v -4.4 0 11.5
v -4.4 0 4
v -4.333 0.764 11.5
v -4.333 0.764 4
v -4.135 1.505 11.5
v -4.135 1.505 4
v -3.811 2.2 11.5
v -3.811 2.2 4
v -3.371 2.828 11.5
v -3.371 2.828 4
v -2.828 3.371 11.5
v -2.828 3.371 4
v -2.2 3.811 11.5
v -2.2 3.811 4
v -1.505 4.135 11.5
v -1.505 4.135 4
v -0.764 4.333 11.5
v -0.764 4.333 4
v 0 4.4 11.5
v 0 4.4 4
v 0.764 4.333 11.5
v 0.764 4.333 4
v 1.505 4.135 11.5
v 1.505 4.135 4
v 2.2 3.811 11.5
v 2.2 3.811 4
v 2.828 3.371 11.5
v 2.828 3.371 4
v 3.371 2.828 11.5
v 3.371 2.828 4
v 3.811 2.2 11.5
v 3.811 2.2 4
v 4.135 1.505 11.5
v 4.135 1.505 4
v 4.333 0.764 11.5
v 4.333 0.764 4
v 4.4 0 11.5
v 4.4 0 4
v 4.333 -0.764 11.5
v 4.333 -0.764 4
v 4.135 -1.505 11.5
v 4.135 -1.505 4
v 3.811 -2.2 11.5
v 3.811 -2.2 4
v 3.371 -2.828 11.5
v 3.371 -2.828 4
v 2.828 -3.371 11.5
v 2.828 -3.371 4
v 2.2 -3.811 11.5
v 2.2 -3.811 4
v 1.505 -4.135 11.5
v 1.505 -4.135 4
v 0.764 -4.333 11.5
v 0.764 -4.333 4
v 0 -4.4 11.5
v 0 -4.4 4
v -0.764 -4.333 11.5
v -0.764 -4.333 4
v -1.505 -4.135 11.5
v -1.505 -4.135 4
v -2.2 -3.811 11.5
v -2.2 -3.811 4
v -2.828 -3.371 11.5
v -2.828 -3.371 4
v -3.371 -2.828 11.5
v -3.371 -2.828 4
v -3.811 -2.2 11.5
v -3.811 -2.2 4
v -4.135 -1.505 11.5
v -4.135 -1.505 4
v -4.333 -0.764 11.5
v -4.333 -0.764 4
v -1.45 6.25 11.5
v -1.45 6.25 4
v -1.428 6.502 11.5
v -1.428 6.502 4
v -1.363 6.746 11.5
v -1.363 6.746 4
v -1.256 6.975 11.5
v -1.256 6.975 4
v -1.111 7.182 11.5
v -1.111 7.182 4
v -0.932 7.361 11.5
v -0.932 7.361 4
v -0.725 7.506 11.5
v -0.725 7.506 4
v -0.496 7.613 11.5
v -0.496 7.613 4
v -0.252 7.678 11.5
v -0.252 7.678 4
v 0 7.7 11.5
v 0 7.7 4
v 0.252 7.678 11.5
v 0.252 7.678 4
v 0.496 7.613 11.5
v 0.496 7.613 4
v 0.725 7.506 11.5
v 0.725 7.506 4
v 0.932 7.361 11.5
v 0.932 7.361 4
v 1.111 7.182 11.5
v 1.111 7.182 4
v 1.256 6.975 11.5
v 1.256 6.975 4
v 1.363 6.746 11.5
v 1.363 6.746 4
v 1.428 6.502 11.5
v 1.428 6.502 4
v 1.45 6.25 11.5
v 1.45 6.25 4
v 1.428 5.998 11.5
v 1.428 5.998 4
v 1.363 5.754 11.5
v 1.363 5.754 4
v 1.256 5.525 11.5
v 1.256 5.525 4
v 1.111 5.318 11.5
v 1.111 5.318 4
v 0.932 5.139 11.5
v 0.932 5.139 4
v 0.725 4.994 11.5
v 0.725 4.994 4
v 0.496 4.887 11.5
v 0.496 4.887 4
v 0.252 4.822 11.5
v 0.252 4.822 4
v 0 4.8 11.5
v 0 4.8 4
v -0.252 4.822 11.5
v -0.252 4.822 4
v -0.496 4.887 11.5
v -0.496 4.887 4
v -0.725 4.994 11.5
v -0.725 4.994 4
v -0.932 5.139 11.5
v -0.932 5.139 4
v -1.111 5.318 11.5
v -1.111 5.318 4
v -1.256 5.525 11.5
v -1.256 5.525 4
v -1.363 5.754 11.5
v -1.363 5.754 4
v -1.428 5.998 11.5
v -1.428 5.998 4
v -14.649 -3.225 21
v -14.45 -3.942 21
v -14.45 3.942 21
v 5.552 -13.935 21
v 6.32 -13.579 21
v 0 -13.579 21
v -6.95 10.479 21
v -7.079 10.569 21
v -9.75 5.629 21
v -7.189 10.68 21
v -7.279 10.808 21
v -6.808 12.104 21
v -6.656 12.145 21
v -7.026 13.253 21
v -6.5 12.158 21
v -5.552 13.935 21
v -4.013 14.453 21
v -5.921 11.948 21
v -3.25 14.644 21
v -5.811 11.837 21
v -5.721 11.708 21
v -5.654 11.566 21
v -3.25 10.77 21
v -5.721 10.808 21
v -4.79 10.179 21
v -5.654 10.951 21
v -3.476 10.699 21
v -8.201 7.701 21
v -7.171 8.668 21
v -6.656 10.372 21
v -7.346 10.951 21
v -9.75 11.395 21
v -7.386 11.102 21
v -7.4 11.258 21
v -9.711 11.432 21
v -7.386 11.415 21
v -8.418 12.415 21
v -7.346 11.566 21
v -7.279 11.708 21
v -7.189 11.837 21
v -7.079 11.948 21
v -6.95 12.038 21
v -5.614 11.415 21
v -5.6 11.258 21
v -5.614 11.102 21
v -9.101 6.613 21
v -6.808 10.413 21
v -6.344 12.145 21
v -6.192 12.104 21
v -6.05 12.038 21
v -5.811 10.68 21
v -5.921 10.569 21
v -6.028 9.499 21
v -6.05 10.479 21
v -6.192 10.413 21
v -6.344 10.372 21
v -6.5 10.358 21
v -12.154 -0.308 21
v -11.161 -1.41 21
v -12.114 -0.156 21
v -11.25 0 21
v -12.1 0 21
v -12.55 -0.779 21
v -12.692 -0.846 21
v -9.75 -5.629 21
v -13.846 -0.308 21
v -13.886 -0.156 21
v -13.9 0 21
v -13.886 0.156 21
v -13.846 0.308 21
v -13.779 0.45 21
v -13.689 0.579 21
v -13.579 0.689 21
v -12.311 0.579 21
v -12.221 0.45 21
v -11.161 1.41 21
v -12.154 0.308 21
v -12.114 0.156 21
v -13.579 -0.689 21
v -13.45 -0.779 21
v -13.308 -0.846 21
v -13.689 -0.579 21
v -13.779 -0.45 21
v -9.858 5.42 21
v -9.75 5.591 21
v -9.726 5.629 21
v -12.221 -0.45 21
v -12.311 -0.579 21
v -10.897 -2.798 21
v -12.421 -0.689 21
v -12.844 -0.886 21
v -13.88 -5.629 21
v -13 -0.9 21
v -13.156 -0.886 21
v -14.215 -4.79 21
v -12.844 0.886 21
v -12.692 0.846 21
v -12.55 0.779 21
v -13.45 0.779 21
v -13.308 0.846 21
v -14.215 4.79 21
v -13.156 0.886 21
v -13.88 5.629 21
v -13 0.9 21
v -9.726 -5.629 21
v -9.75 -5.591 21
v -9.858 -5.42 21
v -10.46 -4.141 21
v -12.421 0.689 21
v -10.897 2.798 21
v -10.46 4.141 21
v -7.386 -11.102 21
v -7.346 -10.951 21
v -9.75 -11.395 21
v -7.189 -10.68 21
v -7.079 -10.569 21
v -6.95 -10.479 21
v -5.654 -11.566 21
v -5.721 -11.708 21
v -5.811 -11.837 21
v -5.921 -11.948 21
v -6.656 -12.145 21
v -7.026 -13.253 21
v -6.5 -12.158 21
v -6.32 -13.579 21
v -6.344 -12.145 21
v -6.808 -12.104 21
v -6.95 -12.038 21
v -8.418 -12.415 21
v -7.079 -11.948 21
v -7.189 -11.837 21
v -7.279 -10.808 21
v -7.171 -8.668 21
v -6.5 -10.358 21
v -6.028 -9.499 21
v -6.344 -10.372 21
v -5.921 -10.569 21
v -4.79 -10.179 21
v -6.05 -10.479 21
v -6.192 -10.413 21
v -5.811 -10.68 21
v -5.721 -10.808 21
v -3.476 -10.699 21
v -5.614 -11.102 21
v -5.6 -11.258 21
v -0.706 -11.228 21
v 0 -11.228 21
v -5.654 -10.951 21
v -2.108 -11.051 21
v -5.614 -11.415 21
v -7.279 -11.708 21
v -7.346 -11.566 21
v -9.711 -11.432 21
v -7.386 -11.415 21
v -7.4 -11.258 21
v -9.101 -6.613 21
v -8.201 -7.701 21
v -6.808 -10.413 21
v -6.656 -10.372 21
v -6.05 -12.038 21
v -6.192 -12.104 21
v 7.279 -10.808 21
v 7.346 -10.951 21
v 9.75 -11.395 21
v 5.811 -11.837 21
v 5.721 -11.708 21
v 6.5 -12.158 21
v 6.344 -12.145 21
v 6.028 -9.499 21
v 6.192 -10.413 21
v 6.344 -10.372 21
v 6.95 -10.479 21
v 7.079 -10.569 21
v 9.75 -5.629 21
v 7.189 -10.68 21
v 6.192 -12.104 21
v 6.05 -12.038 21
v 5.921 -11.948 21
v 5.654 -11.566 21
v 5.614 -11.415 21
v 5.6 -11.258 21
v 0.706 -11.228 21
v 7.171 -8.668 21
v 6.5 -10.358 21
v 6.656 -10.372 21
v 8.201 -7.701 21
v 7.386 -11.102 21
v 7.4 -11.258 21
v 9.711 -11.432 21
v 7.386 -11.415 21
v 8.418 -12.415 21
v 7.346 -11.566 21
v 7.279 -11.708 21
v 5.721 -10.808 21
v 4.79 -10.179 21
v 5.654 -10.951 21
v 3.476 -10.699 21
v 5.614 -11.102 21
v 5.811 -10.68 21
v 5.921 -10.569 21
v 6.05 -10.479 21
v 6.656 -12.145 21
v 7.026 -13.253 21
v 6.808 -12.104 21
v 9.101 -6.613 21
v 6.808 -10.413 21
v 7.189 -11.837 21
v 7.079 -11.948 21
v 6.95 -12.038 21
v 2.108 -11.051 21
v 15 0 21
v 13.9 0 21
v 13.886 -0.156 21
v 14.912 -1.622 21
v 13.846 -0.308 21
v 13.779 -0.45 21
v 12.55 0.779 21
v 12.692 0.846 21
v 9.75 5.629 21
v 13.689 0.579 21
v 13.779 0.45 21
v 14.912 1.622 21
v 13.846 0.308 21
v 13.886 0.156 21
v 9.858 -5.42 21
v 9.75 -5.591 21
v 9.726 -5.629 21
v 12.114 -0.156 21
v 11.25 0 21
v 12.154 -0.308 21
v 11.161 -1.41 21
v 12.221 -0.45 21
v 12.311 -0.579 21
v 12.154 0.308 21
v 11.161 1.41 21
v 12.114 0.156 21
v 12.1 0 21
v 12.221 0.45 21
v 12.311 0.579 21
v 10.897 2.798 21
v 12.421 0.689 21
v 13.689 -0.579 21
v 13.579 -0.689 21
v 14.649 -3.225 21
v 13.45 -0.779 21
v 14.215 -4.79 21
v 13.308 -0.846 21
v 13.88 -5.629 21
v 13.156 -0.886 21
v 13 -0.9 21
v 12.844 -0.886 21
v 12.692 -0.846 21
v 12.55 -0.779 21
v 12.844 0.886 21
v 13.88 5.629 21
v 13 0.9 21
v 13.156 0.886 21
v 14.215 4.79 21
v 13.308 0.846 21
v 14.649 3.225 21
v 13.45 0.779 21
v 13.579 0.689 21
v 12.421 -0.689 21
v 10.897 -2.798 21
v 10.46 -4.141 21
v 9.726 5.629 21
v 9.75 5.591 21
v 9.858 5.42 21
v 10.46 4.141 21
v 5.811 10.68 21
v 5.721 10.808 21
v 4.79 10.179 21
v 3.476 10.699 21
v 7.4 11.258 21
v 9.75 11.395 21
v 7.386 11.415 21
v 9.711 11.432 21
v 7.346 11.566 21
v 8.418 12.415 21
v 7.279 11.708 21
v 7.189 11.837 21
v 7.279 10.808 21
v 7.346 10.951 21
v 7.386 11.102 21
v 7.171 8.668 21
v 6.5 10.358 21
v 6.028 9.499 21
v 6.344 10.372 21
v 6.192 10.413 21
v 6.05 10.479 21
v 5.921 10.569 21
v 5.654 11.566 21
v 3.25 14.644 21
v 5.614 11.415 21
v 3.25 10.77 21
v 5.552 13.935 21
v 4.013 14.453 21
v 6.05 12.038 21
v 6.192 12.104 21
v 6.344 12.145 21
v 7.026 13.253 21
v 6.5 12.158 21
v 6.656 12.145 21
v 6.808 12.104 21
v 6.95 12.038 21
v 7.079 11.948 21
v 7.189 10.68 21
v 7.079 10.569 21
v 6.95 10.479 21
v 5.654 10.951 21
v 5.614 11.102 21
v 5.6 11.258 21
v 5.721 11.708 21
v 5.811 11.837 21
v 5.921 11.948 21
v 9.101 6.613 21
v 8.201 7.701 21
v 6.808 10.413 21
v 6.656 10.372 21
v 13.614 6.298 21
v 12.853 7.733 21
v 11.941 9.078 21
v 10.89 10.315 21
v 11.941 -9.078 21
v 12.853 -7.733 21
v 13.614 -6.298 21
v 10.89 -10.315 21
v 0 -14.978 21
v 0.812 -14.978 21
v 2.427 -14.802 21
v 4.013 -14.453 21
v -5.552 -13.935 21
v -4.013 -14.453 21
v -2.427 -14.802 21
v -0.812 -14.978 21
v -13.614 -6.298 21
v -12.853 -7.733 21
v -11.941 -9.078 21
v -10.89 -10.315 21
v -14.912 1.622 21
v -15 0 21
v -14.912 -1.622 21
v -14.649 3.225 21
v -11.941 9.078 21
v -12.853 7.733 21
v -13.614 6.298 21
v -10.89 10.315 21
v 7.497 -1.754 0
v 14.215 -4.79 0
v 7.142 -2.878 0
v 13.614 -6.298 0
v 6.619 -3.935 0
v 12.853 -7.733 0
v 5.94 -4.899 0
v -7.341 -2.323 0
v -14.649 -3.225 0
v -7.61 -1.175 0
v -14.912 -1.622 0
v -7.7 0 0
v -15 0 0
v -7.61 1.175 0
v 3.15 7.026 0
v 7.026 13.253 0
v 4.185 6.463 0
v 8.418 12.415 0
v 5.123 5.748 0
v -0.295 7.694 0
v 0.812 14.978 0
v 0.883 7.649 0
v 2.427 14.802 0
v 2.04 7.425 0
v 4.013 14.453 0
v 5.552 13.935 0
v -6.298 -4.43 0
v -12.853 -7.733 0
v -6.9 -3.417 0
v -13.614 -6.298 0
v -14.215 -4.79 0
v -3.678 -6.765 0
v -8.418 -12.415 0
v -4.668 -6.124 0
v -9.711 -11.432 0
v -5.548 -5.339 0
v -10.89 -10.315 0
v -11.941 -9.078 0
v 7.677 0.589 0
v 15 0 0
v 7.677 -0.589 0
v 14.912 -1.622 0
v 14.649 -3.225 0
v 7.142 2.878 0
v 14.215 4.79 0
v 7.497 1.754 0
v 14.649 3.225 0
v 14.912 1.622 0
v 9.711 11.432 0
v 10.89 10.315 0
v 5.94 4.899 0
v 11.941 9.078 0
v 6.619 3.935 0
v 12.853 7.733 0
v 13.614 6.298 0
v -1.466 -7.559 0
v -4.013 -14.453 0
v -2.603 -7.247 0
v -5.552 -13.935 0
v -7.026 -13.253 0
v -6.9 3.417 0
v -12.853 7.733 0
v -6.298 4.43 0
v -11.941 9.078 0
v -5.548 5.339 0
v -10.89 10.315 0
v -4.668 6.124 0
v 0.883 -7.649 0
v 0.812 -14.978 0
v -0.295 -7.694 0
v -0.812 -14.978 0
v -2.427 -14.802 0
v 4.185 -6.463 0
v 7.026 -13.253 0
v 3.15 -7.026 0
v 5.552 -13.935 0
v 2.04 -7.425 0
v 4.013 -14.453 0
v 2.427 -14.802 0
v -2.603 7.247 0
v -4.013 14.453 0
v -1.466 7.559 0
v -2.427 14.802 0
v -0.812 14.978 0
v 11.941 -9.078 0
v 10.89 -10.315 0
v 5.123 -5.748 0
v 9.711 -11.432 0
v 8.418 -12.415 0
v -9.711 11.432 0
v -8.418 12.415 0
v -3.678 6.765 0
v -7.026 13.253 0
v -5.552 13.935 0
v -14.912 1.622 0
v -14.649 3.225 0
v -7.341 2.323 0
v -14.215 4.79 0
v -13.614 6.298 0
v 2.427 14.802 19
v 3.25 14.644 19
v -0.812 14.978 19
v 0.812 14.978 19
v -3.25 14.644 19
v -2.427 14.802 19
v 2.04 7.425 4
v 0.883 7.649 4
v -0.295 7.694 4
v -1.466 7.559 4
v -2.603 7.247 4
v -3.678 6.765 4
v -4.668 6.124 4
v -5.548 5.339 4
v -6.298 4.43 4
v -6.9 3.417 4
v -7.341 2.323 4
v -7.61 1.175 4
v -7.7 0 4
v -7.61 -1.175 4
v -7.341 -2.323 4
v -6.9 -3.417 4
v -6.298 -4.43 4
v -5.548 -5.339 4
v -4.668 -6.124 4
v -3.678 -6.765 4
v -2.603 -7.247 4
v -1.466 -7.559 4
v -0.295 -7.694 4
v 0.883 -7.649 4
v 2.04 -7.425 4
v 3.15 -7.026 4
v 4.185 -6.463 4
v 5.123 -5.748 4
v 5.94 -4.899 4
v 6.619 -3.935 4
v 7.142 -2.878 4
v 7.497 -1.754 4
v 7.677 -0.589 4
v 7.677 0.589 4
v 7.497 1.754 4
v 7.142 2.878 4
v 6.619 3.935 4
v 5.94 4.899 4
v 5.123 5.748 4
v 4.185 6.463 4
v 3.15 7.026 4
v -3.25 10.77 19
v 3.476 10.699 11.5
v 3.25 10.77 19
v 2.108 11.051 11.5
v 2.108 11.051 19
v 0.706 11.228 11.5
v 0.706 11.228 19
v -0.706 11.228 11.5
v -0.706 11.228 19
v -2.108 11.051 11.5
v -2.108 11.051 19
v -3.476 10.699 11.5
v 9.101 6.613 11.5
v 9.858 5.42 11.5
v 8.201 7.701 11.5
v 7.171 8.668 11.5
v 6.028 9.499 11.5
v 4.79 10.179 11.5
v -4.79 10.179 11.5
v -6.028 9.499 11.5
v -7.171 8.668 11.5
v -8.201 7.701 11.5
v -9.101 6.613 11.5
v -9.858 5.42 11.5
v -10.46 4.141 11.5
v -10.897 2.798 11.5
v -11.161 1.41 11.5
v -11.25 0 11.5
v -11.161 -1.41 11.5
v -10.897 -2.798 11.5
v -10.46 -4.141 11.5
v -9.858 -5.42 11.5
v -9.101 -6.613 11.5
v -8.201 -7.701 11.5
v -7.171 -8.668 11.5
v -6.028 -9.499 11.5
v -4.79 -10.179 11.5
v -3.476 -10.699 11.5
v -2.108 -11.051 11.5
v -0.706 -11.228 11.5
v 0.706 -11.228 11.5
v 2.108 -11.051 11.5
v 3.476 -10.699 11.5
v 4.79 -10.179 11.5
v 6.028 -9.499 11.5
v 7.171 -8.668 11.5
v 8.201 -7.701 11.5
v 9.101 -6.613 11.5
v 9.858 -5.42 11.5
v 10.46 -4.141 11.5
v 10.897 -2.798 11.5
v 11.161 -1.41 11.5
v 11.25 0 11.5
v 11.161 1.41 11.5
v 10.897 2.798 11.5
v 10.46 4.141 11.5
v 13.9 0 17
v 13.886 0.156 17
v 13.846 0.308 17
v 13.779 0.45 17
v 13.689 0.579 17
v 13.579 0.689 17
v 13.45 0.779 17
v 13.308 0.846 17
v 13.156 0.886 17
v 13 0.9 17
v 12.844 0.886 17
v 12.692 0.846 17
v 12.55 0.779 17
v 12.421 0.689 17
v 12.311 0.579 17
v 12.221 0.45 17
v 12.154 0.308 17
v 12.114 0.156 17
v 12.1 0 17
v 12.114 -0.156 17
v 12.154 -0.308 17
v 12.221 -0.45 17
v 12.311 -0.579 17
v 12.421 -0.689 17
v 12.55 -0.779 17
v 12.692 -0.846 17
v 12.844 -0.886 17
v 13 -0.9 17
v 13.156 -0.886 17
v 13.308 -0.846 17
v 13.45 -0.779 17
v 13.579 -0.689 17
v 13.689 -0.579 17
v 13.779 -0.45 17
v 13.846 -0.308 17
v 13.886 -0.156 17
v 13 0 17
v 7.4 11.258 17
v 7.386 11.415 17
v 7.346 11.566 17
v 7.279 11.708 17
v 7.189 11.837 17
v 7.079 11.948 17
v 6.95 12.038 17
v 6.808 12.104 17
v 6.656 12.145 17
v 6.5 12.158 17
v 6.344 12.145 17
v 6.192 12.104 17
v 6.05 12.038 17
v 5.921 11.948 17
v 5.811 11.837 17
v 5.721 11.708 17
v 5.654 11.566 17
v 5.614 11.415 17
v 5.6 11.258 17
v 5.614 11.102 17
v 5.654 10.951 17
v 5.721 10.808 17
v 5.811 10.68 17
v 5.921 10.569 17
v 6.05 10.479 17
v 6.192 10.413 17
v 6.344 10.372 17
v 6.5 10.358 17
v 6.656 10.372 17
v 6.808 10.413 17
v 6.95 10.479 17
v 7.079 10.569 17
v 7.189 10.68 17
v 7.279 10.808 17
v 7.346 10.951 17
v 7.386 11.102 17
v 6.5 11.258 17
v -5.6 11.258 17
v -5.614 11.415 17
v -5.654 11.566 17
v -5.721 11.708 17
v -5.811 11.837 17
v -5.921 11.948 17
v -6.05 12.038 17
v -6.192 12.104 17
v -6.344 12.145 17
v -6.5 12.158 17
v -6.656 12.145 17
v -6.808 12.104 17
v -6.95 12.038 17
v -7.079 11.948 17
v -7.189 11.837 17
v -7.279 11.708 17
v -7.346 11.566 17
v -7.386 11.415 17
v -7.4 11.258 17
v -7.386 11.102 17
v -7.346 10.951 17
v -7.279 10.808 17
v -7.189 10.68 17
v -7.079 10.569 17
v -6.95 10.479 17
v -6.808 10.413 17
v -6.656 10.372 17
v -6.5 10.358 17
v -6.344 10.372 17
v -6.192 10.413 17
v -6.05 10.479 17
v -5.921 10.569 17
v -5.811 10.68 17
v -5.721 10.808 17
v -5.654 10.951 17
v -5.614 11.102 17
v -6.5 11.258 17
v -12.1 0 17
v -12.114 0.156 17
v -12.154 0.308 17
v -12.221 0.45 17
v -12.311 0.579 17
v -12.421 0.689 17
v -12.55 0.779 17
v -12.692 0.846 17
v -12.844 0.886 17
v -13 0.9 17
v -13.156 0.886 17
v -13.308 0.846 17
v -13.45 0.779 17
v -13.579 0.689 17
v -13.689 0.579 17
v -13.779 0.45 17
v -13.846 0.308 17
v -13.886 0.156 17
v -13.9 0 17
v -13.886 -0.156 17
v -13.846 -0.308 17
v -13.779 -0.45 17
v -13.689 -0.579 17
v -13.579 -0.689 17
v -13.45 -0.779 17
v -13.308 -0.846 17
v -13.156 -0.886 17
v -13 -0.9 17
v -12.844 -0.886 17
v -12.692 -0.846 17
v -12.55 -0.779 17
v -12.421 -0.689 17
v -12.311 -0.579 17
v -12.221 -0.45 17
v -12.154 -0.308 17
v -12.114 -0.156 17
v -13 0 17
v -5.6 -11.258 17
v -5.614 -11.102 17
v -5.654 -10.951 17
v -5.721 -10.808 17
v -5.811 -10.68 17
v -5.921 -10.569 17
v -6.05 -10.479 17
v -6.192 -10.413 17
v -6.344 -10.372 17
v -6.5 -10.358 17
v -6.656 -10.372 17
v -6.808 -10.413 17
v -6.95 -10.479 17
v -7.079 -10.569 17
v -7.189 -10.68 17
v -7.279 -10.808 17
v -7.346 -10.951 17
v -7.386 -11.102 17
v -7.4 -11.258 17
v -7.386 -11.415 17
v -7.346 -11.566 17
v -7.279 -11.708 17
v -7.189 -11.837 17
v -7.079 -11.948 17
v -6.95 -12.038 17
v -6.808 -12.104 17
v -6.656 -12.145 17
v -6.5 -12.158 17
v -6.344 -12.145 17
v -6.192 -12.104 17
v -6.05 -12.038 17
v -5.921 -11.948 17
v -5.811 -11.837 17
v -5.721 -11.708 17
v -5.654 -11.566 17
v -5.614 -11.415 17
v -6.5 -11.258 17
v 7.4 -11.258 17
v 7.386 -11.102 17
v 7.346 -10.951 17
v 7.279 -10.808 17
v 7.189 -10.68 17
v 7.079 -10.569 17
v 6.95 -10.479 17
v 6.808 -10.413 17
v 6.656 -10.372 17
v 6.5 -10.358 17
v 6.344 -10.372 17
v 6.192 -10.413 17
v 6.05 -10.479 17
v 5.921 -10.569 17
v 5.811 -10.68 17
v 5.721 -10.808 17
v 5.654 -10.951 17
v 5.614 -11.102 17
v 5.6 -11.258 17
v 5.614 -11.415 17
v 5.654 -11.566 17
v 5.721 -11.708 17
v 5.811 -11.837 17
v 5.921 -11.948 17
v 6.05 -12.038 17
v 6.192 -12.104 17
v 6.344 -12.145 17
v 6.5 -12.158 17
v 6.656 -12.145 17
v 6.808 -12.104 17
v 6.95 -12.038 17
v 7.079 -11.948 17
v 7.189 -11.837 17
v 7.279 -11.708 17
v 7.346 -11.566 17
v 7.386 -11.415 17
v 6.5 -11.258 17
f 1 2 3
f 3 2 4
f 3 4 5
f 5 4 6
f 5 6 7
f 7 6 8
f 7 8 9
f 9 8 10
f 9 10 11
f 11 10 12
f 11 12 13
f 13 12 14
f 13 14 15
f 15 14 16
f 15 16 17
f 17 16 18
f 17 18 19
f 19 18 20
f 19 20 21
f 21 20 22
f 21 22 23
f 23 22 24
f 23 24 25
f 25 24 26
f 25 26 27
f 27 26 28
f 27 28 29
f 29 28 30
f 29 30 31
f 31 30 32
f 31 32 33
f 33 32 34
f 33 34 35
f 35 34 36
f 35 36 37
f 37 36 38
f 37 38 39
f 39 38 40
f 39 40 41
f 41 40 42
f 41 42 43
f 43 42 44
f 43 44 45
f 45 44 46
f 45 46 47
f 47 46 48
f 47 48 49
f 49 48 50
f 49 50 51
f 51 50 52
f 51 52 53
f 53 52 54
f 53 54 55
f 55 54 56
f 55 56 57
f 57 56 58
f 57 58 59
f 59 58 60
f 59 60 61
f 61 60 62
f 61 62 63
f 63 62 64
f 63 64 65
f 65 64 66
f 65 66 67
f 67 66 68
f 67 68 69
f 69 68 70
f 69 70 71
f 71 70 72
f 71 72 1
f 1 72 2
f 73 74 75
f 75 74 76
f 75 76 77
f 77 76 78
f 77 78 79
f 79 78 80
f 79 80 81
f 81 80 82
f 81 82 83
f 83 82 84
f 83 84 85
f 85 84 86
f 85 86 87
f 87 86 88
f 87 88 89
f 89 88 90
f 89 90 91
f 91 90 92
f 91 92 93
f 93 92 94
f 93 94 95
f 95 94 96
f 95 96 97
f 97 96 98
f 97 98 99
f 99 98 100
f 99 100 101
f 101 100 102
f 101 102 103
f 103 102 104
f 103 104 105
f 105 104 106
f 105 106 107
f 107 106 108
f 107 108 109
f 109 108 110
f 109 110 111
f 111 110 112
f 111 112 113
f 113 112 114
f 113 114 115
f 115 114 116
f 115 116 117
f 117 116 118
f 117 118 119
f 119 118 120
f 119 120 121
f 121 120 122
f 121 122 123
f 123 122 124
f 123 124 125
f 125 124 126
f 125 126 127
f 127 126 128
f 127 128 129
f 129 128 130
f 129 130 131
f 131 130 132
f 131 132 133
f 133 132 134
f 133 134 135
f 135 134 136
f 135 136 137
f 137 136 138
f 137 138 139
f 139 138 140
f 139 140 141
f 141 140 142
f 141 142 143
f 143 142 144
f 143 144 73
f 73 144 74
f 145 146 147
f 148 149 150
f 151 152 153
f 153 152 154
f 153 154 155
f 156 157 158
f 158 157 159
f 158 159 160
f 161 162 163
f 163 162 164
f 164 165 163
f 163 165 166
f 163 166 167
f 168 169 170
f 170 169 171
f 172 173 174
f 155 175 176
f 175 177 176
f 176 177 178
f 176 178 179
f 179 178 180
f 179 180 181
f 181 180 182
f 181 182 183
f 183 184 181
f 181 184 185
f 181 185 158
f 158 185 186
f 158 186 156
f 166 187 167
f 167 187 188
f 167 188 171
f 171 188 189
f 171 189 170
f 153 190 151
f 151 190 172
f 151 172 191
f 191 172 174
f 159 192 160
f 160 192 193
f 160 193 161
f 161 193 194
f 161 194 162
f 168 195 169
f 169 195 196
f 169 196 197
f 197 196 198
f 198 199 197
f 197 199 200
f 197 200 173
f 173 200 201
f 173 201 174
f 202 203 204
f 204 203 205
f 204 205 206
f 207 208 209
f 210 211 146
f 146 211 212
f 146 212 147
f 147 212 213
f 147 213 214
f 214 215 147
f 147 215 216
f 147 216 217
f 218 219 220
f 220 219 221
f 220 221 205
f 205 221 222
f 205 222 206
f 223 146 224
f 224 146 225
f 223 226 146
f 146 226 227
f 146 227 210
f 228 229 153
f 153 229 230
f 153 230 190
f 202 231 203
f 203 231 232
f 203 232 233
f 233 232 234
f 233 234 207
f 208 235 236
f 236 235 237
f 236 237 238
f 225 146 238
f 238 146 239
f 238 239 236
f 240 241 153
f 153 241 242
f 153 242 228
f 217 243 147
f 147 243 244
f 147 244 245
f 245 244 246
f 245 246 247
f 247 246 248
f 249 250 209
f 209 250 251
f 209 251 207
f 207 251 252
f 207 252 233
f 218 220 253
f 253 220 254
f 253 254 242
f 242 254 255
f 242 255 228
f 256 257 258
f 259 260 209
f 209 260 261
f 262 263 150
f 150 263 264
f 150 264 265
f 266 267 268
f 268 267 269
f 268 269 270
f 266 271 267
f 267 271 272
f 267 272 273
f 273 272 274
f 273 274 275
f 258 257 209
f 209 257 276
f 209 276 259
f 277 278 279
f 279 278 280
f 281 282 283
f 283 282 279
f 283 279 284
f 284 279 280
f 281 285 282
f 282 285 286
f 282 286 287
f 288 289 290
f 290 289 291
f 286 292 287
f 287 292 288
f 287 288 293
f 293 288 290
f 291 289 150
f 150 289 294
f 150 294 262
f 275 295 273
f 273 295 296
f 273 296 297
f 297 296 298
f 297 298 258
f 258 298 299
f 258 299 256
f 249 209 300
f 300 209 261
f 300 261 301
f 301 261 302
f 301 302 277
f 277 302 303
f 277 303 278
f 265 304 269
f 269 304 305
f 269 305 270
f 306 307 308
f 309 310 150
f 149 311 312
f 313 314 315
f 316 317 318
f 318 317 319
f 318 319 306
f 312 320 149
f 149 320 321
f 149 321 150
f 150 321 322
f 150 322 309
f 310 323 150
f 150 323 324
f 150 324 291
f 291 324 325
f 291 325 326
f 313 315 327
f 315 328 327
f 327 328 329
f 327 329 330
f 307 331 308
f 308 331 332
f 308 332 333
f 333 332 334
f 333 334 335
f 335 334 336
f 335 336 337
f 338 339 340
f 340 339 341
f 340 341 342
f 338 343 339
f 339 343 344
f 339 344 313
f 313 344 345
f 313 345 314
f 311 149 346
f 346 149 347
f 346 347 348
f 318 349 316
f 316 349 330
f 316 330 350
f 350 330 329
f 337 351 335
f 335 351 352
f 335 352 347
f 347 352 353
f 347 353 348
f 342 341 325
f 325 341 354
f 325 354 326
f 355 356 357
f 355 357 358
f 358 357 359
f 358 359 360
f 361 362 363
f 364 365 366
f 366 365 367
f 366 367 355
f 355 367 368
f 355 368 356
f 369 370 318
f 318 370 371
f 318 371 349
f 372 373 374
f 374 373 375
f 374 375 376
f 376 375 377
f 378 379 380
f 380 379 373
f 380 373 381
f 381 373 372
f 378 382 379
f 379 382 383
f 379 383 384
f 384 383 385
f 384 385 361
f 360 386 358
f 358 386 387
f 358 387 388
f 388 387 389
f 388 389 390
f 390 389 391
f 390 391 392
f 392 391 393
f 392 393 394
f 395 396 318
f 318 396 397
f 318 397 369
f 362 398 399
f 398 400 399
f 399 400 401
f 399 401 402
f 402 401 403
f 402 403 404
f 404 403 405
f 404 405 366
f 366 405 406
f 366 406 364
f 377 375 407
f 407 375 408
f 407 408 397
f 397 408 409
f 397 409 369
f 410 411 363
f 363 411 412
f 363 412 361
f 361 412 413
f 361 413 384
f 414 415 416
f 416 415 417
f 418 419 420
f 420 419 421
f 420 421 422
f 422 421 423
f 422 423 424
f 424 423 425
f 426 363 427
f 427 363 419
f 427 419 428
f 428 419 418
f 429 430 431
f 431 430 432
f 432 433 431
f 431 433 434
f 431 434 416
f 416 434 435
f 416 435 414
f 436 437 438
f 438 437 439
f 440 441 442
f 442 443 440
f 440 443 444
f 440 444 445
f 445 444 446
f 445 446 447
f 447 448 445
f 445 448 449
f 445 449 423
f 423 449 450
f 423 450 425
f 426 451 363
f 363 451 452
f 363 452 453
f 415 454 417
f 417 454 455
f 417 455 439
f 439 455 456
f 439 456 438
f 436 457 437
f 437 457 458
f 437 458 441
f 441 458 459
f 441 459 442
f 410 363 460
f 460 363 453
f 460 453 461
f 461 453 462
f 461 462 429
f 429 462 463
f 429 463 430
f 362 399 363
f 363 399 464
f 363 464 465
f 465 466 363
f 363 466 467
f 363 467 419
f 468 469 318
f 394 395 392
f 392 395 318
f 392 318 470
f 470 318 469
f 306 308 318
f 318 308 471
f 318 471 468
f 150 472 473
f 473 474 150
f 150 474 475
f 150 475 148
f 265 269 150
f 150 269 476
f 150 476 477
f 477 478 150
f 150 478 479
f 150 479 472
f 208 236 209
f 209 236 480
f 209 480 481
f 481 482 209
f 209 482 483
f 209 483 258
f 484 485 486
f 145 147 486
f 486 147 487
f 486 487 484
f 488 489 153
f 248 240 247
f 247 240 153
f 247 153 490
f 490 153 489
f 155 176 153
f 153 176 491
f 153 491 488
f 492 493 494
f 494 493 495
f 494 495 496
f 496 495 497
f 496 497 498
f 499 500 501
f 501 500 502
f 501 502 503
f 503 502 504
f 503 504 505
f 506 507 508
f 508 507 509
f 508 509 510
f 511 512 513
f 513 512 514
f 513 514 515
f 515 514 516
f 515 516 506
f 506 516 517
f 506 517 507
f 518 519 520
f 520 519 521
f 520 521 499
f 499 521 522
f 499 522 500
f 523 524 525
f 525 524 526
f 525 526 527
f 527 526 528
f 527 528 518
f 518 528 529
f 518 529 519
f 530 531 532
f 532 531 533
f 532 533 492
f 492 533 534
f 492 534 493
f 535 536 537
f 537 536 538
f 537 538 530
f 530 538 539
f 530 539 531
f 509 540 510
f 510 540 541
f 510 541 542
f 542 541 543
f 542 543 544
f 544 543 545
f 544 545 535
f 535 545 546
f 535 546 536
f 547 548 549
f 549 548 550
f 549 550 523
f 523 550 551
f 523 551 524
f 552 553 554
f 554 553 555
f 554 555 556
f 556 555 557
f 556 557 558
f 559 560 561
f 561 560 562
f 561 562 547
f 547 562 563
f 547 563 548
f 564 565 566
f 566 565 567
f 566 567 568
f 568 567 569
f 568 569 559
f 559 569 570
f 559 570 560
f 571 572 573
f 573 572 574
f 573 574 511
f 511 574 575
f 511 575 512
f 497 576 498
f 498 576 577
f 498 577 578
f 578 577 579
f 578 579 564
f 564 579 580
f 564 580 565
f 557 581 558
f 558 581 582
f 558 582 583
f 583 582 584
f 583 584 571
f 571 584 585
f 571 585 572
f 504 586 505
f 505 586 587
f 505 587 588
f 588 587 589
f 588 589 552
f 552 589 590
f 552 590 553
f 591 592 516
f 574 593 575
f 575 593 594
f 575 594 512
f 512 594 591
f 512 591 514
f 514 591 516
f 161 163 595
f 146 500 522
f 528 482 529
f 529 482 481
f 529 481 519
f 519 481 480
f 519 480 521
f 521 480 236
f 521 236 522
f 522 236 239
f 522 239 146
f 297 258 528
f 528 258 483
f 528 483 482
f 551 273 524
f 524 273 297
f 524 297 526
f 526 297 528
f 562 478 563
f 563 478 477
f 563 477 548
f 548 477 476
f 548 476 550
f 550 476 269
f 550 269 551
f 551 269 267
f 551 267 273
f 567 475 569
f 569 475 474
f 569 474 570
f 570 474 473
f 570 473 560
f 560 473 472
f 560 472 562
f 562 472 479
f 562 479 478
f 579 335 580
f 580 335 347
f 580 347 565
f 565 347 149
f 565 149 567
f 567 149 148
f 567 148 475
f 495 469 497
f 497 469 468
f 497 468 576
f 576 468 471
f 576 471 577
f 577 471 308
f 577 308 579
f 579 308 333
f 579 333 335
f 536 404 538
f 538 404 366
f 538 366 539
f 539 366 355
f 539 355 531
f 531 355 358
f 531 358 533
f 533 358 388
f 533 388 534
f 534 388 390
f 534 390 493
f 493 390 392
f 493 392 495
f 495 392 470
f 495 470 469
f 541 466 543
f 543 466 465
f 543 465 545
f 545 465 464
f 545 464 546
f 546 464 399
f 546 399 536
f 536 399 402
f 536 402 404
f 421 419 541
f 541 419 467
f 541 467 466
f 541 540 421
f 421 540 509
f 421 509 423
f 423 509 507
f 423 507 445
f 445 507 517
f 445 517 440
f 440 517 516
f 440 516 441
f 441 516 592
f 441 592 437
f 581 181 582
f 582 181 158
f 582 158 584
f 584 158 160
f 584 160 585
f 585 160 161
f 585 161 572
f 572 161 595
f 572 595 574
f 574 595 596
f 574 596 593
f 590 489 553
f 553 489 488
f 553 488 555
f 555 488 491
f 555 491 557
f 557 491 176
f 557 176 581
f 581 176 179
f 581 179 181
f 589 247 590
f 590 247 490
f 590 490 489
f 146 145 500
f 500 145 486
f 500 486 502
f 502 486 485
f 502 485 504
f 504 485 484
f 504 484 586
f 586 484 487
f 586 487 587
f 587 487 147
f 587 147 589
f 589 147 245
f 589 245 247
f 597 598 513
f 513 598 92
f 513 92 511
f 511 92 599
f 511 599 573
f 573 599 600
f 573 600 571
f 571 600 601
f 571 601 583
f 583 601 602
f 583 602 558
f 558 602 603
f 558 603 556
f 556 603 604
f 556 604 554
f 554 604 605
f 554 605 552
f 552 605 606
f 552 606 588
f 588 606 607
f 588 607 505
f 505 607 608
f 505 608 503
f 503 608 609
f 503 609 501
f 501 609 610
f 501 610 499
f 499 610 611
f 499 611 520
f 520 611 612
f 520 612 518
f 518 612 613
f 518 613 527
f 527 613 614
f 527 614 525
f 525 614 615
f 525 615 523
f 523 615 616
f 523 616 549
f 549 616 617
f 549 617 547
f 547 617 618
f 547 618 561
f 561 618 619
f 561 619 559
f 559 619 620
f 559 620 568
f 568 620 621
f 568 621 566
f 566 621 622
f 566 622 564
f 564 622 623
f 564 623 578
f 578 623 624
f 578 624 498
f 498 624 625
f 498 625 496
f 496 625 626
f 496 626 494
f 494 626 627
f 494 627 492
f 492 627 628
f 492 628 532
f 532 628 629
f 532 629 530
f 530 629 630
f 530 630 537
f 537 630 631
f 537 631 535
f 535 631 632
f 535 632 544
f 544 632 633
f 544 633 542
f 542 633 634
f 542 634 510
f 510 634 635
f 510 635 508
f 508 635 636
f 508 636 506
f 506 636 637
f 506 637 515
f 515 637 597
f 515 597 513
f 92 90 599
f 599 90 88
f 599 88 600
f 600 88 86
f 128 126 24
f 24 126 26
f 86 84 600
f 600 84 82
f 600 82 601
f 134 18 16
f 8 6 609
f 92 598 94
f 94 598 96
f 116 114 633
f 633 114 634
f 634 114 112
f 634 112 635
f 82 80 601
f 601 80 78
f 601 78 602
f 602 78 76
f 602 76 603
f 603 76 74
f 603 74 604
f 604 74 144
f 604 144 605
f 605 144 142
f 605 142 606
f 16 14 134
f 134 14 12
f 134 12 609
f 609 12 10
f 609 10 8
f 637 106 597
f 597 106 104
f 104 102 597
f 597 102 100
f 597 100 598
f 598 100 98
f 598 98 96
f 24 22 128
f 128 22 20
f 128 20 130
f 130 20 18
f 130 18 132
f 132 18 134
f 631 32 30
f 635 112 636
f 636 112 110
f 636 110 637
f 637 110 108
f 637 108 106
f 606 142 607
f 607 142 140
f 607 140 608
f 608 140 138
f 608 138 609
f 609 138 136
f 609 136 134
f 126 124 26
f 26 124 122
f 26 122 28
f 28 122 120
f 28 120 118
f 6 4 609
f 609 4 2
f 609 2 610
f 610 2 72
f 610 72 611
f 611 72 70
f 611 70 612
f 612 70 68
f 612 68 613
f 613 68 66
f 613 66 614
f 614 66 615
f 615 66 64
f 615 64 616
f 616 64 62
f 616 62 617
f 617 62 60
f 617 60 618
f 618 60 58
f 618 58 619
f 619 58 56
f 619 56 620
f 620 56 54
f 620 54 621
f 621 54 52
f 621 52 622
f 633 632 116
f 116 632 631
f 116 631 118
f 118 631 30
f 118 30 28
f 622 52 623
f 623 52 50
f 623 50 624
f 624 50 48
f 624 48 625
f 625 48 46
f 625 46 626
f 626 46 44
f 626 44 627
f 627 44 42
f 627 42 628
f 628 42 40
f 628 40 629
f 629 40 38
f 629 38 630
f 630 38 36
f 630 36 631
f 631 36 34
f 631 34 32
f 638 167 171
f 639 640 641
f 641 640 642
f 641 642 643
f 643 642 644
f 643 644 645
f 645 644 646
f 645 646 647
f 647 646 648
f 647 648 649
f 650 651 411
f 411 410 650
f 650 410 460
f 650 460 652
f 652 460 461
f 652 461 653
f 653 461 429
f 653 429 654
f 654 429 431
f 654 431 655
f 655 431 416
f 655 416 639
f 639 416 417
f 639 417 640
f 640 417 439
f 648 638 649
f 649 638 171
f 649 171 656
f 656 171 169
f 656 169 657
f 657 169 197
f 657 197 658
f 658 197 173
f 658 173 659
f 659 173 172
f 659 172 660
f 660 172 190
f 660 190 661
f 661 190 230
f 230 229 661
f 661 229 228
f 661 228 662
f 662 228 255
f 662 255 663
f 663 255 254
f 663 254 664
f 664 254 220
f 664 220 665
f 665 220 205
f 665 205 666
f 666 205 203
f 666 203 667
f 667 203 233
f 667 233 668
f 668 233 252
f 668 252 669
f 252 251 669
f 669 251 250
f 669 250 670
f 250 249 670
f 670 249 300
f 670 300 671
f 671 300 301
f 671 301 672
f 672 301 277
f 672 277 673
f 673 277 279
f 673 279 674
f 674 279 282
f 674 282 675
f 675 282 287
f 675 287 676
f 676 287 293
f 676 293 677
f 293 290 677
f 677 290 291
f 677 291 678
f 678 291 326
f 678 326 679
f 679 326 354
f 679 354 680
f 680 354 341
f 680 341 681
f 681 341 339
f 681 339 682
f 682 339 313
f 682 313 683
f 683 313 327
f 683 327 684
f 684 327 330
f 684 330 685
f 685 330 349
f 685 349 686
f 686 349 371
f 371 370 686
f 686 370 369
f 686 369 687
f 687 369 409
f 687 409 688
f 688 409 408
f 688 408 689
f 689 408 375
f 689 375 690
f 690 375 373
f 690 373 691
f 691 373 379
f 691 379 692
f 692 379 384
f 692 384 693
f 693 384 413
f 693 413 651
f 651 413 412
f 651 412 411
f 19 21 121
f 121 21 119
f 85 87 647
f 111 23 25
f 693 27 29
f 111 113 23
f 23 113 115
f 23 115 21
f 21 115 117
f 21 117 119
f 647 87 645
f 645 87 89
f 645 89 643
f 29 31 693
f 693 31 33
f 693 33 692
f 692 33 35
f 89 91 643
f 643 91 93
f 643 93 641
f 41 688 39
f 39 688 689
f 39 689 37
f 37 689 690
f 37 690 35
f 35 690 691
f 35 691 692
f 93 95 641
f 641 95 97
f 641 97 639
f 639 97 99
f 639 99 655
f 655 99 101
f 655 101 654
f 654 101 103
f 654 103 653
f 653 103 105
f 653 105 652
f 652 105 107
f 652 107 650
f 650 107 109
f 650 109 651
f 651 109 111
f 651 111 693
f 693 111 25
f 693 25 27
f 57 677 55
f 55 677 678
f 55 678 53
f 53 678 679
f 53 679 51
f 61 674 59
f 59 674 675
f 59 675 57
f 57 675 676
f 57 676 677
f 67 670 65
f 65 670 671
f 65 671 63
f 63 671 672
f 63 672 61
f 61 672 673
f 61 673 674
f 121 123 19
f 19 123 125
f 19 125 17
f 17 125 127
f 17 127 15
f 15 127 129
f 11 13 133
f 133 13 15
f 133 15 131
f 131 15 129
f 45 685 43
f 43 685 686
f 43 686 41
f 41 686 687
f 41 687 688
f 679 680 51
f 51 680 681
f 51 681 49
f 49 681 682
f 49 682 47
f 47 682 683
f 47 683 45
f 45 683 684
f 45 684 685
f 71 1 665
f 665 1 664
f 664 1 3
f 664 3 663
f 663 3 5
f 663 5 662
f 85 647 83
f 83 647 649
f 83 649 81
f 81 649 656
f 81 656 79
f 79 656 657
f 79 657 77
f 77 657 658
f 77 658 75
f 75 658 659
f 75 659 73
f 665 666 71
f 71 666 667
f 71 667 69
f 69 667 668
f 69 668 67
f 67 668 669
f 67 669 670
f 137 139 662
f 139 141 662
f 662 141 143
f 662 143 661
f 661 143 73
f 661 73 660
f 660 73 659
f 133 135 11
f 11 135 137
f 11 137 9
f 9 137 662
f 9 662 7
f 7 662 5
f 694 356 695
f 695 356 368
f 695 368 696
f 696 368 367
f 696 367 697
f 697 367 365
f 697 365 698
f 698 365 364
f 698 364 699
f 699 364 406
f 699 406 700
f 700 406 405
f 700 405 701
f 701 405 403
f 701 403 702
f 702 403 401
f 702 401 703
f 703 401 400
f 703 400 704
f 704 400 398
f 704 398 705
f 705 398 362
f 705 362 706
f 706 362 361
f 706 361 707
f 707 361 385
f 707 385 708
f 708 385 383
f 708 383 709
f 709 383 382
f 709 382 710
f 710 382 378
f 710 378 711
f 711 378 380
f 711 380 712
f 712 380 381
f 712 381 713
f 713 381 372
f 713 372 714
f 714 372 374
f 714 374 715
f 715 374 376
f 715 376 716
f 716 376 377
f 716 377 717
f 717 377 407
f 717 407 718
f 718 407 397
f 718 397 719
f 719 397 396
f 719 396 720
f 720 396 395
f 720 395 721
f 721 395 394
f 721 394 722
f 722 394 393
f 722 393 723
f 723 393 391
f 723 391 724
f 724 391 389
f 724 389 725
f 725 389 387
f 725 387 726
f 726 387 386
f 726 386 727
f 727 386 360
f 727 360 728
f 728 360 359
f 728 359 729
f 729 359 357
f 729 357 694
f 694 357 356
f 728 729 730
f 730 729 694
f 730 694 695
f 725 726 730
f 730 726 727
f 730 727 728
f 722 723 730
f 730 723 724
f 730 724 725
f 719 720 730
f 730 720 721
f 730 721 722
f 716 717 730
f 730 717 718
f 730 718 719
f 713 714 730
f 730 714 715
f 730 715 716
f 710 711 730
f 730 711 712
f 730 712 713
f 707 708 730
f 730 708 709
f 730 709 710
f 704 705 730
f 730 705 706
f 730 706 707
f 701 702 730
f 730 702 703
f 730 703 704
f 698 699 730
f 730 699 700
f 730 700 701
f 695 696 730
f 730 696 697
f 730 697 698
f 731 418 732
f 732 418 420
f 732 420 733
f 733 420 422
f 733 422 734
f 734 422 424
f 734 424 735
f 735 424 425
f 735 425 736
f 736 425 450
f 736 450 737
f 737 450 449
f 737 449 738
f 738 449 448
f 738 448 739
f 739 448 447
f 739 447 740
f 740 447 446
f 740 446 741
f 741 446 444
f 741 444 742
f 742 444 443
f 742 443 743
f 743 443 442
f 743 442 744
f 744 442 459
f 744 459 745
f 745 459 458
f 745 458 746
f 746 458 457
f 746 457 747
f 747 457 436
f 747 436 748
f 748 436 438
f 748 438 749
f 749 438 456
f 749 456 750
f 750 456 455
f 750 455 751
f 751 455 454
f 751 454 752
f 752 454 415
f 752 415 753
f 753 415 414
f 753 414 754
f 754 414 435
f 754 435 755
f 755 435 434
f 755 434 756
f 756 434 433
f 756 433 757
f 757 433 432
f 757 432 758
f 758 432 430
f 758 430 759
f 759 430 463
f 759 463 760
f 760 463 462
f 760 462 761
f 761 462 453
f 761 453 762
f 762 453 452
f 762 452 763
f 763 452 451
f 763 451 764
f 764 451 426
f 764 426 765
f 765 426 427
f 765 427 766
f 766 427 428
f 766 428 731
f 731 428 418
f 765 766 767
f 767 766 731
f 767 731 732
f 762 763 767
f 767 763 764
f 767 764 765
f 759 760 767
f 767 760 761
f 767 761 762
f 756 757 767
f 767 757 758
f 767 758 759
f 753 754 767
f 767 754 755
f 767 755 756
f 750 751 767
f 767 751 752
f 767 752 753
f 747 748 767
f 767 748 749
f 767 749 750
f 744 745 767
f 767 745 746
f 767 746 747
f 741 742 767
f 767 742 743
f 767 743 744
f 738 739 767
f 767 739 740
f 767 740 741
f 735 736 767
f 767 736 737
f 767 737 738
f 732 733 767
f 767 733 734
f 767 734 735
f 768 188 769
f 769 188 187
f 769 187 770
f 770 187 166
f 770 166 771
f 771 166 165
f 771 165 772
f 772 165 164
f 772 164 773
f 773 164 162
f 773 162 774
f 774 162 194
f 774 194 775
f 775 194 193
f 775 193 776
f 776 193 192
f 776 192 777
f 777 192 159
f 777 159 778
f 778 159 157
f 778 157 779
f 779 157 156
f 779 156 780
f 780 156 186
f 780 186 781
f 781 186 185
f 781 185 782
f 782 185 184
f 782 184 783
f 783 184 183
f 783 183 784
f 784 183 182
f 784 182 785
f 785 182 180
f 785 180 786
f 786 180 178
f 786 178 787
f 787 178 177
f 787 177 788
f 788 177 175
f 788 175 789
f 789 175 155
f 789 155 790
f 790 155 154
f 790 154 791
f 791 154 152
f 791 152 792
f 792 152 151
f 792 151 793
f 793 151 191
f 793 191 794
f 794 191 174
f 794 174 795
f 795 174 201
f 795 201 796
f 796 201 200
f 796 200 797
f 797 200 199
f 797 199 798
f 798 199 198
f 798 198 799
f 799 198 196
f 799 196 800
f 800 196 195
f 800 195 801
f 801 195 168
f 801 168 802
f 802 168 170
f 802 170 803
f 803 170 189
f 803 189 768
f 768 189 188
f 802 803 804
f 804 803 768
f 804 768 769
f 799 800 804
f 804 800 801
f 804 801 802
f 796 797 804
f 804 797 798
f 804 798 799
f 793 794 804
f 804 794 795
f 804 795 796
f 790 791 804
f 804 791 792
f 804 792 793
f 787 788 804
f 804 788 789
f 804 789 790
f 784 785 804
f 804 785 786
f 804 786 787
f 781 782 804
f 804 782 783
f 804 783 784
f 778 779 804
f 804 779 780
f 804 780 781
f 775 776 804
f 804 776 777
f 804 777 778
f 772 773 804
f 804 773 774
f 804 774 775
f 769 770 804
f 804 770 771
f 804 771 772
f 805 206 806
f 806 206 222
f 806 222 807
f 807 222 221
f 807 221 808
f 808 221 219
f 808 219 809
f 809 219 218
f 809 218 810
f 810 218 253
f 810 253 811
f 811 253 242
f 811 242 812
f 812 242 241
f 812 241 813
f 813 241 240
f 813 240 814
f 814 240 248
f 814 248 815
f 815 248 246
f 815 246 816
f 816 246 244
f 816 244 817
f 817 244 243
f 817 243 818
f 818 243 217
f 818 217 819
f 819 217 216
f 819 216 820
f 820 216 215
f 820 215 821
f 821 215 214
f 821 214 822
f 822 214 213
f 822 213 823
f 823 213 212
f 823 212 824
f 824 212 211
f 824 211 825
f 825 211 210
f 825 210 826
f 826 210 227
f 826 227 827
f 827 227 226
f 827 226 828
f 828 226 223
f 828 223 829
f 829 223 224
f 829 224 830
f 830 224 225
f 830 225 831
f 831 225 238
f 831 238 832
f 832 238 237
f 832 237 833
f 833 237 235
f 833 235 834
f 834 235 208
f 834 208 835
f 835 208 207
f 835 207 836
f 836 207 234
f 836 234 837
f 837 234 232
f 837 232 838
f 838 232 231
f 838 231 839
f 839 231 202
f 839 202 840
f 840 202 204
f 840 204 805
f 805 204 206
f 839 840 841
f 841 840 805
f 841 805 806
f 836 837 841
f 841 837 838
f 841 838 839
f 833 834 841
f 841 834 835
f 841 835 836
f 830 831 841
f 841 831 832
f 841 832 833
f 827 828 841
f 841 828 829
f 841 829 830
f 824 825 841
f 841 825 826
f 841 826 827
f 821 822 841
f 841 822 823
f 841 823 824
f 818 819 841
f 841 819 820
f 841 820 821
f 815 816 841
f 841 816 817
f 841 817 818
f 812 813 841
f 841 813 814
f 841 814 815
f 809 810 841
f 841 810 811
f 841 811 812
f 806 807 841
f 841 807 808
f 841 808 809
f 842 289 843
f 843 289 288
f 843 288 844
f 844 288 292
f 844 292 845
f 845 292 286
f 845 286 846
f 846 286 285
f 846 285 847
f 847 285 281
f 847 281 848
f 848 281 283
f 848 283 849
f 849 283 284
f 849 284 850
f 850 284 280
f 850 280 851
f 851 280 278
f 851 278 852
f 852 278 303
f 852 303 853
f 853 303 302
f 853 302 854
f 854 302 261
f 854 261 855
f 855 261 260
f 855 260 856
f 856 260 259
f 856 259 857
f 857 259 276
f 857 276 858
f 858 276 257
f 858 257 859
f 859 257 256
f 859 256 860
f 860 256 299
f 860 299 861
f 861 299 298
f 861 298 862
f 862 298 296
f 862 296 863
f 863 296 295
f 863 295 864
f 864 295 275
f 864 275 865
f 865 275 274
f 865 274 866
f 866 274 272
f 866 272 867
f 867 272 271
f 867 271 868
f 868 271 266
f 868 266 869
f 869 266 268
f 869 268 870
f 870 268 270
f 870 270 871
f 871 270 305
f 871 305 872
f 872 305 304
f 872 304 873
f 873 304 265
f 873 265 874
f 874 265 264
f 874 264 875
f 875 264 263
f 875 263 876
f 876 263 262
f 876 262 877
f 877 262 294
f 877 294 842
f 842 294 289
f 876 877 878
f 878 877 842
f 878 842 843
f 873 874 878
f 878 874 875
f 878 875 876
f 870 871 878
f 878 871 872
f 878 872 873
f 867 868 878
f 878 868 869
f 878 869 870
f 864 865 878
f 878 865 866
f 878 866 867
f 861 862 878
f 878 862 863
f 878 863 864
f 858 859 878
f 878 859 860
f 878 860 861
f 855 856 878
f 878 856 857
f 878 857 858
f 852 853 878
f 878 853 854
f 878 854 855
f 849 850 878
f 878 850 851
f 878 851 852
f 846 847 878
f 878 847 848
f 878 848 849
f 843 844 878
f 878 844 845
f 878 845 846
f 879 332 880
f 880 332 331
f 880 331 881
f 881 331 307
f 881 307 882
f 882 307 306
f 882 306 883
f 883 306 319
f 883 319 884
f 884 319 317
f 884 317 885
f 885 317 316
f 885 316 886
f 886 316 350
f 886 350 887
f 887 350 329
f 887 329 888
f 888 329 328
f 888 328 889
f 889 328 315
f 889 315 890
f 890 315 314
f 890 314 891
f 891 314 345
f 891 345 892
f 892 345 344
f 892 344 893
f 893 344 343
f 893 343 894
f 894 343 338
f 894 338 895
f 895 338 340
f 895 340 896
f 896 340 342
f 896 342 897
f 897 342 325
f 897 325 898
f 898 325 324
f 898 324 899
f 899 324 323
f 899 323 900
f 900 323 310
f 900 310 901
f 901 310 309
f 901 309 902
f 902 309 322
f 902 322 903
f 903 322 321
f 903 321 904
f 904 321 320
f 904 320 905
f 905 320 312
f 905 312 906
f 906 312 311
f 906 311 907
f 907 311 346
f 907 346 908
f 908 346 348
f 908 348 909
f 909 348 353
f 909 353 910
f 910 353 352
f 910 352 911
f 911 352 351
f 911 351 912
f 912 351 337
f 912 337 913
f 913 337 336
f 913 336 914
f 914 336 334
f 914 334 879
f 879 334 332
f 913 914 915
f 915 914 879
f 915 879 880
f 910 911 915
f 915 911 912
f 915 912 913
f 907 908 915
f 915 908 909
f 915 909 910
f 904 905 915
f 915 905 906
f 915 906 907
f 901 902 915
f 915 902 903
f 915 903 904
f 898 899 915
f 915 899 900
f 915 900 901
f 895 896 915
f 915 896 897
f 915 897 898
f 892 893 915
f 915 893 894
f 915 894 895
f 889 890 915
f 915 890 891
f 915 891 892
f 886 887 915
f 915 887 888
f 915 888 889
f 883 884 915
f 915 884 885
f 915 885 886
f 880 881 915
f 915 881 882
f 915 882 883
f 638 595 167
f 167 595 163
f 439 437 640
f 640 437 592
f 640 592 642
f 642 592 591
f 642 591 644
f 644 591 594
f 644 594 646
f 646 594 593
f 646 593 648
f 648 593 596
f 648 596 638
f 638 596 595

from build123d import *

# Parameters (mm, degrees)
SKETCH_1_R          = 15
SKETCH_1_R_2        = 4.4
SKETCH_1_R_3        = 1.45
EXTRUDE_1_DEPTH     = 21
SKETCH_2_R          = 7.7
CUT_EXTRUDE_1_DEPTH = 4
SKETCH_3_R          = 11.25
CUT_EXTRUDE_2_DEPTH = 9.5
SKETCH_4_R          = 0.9
CUT_EXTRUDE_3_DEPTH = 4
SKETCH_5_W          = 6.5
SKETCH_5_H          = 9
CUT_EXTRUDE_4_DEPTH = 2


with BuildPart() as part:
    # 스케치1 → 보스-돌출1 (new body)
    with BuildSketch(Plane.XY):
        Circle(SKETCH_1_R)
        Circle(SKETCH_1_R_2, mode=Mode.SUBTRACT)
        with Locations((0, 6.25)):
            Circle(SKETCH_1_R_3, mode=Mode.SUBTRACT)
    extrude(amount=EXTRUDE_1_DEPTH)

    # 스케치2 → 컷-돌출1 (cut)
    with BuildSketch(Plane(origin=(0, 0, 0), x_dir=(-1, 0, 0), z_dir=(0, 0, -1))):
        Circle(SKETCH_2_R)
    extrude(amount=-CUT_EXTRUDE_1_DEPTH, mode=Mode.SUBTRACT)

    # 스케치3 → 컷-돌출2 (cut)
    with BuildSketch(Plane.XY.offset(21)):
        Circle(SKETCH_3_R)
    extrude(amount=-CUT_EXTRUDE_2_DEPTH, mode=Mode.SUBTRACT)

    # 스케치4 → 컷-돌출3 (cut)
    with BuildSketch(Plane.XY.offset(21)):
        with Locations((13, 0)):
            Circle(SKETCH_4_R)
        with Locations((6.5, -11.258330249)):
            Circle(SKETCH_4_R)
        with Locations((-6.5, -11.258330249)):
            Circle(SKETCH_4_R)
        with Locations((-13, 0)):
            Circle(SKETCH_4_R)
        with Locations((-6.5, 11.258330249)):
            Circle(SKETCH_4_R)
        with Locations((6.5, 11.258330249)):
            Circle(SKETCH_4_R)
    extrude(amount=-CUT_EXTRUDE_3_DEPTH, mode=Mode.SUBTRACT)

    # 스케치5 → 컷-돌출4 (cut)
    with BuildSketch(Plane.XY.offset(21)):
        with Locations((0, 12)):
            Rectangle(SKETCH_5_W, SKETCH_5_H)
    extrude(amount=-CUT_EXTRUDE_4_DEPTH, mode=Mode.SUBTRACT)


solid = part.part
